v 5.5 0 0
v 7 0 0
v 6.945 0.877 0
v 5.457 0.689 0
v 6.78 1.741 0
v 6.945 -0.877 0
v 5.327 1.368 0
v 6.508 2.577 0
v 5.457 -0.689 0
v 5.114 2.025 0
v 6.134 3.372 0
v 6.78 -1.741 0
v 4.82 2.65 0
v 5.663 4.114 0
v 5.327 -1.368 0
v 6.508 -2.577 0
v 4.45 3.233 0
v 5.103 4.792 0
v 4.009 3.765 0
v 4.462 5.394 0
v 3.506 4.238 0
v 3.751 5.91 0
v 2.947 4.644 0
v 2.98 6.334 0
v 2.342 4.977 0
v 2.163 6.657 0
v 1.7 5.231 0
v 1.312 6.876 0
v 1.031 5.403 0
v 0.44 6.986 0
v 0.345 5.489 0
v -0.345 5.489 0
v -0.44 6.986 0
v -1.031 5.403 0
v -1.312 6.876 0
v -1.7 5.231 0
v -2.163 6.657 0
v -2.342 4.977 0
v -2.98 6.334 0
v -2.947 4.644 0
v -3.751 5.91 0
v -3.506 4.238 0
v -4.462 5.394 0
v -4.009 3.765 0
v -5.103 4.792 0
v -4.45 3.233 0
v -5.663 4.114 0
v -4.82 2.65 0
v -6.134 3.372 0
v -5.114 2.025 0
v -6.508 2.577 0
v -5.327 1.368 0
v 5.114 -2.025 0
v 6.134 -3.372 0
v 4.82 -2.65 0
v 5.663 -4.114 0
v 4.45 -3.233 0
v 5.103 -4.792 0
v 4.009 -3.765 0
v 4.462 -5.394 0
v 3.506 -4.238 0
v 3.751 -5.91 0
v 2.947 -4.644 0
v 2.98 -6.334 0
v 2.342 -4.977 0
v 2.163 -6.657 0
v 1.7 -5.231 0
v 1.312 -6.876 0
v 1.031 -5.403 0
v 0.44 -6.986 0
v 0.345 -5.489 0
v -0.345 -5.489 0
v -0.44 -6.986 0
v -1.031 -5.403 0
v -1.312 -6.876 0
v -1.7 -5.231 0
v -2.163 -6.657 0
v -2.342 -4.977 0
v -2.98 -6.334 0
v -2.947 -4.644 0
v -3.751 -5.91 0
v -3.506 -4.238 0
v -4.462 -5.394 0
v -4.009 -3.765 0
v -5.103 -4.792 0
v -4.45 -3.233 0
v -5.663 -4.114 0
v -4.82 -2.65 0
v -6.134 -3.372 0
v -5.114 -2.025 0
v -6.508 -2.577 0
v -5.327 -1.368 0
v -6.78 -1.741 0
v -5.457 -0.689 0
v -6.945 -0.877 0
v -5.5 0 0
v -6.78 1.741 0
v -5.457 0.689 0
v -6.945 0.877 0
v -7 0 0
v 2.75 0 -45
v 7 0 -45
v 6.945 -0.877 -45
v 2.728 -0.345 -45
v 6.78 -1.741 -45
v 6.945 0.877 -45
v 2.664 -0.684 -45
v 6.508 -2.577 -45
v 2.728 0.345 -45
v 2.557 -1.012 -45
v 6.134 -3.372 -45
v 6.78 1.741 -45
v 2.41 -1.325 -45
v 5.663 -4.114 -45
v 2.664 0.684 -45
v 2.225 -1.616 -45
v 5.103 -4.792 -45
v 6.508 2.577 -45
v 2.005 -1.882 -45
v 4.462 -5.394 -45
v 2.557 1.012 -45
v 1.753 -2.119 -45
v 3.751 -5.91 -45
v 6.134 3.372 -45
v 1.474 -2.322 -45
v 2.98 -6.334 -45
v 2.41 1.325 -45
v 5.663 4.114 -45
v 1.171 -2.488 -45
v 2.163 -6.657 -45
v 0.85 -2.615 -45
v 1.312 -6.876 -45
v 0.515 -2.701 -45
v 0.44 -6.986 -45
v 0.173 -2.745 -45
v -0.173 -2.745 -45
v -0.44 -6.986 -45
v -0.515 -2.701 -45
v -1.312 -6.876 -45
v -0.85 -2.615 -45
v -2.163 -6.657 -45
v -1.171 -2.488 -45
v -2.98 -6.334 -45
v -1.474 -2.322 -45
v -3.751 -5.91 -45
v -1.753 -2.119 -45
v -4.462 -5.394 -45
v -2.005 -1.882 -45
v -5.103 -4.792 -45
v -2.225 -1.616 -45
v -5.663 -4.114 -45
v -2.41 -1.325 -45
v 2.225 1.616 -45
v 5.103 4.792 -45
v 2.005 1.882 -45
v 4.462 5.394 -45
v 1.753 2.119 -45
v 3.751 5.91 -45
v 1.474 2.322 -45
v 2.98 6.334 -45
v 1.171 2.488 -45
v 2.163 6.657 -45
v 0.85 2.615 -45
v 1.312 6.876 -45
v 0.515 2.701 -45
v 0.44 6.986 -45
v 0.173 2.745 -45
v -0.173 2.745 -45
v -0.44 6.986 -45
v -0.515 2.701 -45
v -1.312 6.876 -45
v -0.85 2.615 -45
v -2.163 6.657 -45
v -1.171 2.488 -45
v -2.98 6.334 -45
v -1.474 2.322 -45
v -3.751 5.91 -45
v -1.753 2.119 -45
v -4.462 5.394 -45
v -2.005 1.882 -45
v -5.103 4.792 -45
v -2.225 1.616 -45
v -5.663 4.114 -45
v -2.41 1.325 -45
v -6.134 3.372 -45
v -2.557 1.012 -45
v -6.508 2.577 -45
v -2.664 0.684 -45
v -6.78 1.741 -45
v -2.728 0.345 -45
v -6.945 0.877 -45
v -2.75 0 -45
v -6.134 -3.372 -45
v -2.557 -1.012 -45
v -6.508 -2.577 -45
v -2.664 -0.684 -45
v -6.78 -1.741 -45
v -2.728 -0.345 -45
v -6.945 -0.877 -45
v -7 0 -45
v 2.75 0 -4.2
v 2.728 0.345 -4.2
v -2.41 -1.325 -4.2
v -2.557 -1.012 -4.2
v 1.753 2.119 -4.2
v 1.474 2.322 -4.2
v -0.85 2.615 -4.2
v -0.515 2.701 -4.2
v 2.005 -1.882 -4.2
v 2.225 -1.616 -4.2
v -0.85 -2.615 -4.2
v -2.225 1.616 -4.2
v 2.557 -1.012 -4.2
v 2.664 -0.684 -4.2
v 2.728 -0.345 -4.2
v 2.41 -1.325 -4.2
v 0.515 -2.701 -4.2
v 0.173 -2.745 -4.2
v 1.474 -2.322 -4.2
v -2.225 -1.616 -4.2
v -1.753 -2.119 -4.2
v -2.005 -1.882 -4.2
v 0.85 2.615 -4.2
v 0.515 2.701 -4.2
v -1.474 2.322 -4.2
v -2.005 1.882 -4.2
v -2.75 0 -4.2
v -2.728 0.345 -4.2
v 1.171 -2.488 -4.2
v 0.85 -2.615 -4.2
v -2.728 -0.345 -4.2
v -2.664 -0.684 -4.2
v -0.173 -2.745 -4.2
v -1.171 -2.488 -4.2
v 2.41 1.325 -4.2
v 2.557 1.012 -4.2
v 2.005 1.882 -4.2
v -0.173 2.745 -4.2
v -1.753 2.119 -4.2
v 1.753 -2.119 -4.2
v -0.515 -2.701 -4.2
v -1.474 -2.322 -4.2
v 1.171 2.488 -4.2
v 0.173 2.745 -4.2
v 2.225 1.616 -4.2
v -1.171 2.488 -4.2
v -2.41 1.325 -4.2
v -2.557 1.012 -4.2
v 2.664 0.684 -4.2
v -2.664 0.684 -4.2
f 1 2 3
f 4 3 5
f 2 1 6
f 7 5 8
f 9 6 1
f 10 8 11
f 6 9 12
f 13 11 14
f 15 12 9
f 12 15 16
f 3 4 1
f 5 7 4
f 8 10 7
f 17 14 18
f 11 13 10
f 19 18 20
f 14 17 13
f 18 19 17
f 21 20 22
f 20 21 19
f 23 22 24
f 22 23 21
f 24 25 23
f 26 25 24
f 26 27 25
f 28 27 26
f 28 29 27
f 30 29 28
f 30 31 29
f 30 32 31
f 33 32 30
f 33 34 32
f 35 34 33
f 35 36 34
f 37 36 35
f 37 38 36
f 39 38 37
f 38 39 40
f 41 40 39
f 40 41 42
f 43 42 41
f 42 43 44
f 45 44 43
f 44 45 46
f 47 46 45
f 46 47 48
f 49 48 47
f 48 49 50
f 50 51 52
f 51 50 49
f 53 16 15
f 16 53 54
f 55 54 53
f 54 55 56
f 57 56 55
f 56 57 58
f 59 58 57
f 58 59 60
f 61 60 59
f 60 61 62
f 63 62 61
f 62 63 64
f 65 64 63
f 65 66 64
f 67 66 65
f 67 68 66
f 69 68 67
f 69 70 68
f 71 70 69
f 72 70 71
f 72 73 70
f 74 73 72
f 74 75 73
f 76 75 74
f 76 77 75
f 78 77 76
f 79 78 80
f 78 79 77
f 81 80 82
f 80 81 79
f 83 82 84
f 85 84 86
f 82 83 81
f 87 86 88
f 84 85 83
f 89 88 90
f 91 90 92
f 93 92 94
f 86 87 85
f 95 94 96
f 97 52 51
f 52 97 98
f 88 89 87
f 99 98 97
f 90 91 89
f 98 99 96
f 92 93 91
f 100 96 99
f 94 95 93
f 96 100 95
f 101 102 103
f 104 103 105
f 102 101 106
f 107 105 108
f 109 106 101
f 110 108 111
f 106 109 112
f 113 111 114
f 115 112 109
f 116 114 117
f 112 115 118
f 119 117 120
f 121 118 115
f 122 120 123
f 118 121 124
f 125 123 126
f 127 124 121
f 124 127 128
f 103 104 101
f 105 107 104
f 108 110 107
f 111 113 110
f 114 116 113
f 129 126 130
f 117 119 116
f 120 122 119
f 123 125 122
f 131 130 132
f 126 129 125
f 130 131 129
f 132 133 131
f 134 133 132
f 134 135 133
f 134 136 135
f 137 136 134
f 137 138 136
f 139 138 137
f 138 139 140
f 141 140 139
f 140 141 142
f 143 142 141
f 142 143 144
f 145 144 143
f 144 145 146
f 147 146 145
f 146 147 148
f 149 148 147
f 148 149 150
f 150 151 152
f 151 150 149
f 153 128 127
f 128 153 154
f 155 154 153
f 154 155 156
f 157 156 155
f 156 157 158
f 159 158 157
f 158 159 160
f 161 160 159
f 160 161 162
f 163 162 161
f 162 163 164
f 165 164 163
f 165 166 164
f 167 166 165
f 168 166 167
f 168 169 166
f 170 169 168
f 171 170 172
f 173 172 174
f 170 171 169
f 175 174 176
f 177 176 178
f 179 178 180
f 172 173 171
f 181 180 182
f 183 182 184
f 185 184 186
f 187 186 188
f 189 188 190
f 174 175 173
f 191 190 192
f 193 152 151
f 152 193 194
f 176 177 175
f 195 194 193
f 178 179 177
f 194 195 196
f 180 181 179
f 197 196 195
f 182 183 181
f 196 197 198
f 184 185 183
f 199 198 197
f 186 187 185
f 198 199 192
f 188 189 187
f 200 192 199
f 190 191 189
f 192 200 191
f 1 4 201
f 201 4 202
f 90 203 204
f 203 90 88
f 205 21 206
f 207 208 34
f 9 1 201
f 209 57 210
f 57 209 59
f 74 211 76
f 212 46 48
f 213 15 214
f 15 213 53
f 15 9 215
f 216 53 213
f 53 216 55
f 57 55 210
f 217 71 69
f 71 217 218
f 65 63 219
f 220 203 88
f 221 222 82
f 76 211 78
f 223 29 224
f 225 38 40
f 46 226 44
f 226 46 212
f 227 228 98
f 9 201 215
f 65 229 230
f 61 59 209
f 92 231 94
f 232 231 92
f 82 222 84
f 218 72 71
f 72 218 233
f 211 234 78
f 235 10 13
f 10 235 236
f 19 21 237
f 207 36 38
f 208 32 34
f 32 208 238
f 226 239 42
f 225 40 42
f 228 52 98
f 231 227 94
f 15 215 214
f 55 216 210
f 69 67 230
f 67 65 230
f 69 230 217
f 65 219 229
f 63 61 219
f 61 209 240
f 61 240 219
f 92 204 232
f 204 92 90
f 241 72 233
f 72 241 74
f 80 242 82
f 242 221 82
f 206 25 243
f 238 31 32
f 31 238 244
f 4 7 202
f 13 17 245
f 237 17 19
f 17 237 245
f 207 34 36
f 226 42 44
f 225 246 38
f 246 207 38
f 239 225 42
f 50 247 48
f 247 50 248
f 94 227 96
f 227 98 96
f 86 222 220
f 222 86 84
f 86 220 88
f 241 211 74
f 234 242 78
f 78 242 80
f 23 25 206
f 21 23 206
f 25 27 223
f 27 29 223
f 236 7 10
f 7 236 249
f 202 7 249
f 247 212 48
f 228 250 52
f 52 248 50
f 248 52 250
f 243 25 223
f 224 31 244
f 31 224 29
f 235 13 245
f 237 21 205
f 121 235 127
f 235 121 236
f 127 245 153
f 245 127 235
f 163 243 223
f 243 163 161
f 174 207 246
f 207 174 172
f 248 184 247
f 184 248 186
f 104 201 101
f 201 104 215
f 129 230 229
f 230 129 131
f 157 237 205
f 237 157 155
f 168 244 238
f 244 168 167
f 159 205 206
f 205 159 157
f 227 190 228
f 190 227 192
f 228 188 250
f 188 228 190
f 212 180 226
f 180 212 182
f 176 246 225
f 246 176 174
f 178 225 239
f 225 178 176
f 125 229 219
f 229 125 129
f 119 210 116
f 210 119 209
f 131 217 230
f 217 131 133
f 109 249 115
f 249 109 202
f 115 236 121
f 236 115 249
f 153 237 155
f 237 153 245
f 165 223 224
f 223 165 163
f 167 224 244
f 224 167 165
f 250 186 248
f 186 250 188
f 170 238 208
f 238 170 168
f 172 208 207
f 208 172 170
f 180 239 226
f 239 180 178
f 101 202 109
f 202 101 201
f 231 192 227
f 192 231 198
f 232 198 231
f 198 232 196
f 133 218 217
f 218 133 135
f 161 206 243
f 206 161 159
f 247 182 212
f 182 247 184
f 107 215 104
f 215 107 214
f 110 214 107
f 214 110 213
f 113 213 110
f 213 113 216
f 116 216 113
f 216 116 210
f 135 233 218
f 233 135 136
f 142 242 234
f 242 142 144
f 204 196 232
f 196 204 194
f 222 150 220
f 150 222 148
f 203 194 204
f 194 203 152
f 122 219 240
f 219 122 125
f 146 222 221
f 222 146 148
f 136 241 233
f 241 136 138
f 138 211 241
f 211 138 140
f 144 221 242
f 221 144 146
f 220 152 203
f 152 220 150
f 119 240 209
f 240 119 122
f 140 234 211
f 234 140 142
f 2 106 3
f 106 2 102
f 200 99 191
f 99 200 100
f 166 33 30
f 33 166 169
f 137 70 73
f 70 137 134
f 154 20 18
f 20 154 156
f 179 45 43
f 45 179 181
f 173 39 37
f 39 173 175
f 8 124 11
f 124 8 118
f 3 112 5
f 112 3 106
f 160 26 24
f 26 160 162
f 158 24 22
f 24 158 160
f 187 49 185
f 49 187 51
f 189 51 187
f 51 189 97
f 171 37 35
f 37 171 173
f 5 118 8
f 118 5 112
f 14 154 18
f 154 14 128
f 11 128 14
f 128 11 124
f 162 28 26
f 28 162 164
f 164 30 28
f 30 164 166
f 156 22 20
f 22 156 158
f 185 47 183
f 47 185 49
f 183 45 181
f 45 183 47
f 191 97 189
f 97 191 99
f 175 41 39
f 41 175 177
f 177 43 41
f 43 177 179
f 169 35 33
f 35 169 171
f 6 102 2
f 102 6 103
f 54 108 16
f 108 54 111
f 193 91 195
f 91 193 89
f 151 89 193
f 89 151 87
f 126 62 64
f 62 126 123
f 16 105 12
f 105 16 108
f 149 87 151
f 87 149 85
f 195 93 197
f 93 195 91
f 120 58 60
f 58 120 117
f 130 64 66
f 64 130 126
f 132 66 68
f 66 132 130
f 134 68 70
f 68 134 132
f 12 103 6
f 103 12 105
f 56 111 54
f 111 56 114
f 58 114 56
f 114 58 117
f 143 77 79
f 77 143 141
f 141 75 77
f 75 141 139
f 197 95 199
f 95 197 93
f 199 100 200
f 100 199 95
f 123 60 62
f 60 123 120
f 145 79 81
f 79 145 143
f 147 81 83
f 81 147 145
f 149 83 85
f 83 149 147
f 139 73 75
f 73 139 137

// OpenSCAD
$fn = 50;


difference() {
	union() {
		translate(v = [0, 0, -45.0000000000]) {
			cylinder(h = 45, r = 7.0000000000);
		}
		cylinder(h = 0, r = 17.0000000000);
	}
	union() {
		translate(v = [0, 0, 0]) {
			rotate(a = [0, 0, 0]) {
				difference() {
					union() {
						#translate(v = [0, 0, -45.0000000000]) {
							cylinder(h = 45, r = 2.2500000000);
						}
						#translate(v = [0, 0, -4.2000000000]) {
							cylinder(h = 4.2000000000, r1 = 2.7500000000, r2 = 5.5000000000);
						}
						#translate(v = [0, 0, -45.0000000000]) {
							cylinder(h = 45, r = 2.7500000000);
						}
						#translate(v = [0, 0, -45.0000000000]) {
							cylinder(h = 45, r = 2.2500000000);
						}
					}
					union();
				}
			}
		}
	}
}
